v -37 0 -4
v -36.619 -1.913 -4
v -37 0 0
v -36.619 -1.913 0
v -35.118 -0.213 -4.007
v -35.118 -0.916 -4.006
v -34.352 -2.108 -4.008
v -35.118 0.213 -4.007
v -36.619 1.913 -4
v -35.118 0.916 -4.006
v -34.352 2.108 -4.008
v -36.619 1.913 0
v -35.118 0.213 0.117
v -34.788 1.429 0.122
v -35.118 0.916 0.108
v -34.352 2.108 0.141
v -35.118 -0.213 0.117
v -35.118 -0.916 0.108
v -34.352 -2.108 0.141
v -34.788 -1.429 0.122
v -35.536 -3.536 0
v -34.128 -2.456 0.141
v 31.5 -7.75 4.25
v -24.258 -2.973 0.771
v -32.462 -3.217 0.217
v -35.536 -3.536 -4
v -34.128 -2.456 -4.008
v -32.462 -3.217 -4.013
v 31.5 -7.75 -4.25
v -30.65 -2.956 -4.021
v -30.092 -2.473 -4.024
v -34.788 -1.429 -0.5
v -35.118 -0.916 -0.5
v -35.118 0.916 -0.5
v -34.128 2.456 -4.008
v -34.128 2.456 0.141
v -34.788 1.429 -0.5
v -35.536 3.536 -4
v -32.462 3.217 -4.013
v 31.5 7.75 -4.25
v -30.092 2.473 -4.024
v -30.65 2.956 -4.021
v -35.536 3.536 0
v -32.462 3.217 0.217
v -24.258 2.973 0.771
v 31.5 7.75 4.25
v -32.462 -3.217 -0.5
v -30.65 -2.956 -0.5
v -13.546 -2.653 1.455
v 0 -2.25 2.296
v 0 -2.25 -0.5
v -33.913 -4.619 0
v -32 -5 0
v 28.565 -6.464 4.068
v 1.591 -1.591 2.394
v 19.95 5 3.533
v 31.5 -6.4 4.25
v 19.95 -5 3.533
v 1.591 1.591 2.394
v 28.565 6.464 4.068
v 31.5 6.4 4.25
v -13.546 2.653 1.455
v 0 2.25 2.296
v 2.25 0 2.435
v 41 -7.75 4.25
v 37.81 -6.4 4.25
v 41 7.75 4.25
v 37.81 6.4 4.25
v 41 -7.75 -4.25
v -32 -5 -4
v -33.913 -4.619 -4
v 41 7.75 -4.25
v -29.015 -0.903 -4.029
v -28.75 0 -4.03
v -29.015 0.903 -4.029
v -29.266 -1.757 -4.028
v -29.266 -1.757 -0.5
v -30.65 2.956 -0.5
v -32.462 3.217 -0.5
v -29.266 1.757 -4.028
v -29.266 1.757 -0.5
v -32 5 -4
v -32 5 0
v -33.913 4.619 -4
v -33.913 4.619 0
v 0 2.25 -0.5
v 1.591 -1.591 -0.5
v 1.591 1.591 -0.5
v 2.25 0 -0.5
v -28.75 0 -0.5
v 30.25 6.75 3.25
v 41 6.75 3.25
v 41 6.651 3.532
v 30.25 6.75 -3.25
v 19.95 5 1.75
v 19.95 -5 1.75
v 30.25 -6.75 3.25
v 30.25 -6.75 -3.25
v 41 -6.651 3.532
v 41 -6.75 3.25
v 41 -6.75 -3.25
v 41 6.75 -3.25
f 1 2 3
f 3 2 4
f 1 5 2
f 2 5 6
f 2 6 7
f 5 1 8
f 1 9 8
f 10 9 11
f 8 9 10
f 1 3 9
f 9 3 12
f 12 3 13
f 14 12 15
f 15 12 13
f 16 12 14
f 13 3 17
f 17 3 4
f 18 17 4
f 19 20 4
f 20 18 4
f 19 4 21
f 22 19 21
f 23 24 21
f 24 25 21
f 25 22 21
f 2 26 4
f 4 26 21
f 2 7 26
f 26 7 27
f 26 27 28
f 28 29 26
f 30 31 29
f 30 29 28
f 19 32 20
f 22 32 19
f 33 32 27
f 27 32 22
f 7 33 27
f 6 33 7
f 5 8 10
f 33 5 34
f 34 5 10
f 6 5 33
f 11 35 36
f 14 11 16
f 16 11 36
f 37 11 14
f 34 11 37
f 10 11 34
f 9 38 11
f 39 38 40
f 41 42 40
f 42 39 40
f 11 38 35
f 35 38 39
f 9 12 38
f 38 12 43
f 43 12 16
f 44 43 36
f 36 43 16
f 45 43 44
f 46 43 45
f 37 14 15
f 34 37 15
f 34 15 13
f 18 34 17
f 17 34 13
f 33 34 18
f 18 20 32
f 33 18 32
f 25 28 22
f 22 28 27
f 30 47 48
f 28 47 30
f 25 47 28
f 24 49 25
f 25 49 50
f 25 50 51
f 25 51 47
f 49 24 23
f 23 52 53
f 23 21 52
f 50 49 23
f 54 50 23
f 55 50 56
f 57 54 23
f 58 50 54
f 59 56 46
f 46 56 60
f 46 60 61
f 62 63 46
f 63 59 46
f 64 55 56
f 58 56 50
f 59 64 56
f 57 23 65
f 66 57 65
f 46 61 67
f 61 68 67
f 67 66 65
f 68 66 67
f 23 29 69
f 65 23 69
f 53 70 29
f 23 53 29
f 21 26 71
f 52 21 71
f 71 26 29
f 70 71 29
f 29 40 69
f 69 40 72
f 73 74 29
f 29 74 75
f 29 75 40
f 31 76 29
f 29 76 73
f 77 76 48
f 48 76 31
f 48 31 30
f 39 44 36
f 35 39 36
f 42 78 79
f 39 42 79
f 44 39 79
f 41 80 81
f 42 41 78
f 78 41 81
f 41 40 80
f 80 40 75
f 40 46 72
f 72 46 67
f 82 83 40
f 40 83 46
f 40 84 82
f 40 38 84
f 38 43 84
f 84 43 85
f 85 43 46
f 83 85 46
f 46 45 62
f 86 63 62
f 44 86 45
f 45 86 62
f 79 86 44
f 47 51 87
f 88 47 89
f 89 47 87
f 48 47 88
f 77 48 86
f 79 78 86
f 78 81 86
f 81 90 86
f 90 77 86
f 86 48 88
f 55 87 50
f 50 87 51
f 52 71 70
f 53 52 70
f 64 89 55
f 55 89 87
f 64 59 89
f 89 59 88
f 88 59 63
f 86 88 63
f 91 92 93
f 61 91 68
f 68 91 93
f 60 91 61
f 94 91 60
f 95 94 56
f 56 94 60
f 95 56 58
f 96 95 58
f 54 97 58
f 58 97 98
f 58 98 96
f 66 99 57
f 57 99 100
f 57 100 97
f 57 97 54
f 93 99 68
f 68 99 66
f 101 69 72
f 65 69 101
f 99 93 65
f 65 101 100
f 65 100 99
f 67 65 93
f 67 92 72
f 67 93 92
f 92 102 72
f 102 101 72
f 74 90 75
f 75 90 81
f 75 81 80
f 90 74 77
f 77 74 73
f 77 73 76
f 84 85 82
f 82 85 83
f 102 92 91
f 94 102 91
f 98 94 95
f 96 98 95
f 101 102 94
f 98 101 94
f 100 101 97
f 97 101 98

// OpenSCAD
difference(){
	hull(){
		translate([-40+16/2,0,-4])cylinder(r=10/2,h=4, center=false);
		translate([40-7.5/2,0,0])cube([7.5+2,13.5+2,6.5+2],center=true);
	}
translate([0,0,2])
hull(){
	translate([-40+16/2,0,0])cylinder(r=6.5/2,h=5,center=true);
	translate([-0,0,0])cylinder(r=4.5/2,h=5,center=true);
}
translate([-40+16/2,0,0])cylinder(r=6.5/2,h=10,center=true);
hull(){
translate([40-7.5/2,0,0])cube([12,13.5,6.5],center=true);
translate([20,0,5])cube([0.1,10,6.5],center=true);
}
}
